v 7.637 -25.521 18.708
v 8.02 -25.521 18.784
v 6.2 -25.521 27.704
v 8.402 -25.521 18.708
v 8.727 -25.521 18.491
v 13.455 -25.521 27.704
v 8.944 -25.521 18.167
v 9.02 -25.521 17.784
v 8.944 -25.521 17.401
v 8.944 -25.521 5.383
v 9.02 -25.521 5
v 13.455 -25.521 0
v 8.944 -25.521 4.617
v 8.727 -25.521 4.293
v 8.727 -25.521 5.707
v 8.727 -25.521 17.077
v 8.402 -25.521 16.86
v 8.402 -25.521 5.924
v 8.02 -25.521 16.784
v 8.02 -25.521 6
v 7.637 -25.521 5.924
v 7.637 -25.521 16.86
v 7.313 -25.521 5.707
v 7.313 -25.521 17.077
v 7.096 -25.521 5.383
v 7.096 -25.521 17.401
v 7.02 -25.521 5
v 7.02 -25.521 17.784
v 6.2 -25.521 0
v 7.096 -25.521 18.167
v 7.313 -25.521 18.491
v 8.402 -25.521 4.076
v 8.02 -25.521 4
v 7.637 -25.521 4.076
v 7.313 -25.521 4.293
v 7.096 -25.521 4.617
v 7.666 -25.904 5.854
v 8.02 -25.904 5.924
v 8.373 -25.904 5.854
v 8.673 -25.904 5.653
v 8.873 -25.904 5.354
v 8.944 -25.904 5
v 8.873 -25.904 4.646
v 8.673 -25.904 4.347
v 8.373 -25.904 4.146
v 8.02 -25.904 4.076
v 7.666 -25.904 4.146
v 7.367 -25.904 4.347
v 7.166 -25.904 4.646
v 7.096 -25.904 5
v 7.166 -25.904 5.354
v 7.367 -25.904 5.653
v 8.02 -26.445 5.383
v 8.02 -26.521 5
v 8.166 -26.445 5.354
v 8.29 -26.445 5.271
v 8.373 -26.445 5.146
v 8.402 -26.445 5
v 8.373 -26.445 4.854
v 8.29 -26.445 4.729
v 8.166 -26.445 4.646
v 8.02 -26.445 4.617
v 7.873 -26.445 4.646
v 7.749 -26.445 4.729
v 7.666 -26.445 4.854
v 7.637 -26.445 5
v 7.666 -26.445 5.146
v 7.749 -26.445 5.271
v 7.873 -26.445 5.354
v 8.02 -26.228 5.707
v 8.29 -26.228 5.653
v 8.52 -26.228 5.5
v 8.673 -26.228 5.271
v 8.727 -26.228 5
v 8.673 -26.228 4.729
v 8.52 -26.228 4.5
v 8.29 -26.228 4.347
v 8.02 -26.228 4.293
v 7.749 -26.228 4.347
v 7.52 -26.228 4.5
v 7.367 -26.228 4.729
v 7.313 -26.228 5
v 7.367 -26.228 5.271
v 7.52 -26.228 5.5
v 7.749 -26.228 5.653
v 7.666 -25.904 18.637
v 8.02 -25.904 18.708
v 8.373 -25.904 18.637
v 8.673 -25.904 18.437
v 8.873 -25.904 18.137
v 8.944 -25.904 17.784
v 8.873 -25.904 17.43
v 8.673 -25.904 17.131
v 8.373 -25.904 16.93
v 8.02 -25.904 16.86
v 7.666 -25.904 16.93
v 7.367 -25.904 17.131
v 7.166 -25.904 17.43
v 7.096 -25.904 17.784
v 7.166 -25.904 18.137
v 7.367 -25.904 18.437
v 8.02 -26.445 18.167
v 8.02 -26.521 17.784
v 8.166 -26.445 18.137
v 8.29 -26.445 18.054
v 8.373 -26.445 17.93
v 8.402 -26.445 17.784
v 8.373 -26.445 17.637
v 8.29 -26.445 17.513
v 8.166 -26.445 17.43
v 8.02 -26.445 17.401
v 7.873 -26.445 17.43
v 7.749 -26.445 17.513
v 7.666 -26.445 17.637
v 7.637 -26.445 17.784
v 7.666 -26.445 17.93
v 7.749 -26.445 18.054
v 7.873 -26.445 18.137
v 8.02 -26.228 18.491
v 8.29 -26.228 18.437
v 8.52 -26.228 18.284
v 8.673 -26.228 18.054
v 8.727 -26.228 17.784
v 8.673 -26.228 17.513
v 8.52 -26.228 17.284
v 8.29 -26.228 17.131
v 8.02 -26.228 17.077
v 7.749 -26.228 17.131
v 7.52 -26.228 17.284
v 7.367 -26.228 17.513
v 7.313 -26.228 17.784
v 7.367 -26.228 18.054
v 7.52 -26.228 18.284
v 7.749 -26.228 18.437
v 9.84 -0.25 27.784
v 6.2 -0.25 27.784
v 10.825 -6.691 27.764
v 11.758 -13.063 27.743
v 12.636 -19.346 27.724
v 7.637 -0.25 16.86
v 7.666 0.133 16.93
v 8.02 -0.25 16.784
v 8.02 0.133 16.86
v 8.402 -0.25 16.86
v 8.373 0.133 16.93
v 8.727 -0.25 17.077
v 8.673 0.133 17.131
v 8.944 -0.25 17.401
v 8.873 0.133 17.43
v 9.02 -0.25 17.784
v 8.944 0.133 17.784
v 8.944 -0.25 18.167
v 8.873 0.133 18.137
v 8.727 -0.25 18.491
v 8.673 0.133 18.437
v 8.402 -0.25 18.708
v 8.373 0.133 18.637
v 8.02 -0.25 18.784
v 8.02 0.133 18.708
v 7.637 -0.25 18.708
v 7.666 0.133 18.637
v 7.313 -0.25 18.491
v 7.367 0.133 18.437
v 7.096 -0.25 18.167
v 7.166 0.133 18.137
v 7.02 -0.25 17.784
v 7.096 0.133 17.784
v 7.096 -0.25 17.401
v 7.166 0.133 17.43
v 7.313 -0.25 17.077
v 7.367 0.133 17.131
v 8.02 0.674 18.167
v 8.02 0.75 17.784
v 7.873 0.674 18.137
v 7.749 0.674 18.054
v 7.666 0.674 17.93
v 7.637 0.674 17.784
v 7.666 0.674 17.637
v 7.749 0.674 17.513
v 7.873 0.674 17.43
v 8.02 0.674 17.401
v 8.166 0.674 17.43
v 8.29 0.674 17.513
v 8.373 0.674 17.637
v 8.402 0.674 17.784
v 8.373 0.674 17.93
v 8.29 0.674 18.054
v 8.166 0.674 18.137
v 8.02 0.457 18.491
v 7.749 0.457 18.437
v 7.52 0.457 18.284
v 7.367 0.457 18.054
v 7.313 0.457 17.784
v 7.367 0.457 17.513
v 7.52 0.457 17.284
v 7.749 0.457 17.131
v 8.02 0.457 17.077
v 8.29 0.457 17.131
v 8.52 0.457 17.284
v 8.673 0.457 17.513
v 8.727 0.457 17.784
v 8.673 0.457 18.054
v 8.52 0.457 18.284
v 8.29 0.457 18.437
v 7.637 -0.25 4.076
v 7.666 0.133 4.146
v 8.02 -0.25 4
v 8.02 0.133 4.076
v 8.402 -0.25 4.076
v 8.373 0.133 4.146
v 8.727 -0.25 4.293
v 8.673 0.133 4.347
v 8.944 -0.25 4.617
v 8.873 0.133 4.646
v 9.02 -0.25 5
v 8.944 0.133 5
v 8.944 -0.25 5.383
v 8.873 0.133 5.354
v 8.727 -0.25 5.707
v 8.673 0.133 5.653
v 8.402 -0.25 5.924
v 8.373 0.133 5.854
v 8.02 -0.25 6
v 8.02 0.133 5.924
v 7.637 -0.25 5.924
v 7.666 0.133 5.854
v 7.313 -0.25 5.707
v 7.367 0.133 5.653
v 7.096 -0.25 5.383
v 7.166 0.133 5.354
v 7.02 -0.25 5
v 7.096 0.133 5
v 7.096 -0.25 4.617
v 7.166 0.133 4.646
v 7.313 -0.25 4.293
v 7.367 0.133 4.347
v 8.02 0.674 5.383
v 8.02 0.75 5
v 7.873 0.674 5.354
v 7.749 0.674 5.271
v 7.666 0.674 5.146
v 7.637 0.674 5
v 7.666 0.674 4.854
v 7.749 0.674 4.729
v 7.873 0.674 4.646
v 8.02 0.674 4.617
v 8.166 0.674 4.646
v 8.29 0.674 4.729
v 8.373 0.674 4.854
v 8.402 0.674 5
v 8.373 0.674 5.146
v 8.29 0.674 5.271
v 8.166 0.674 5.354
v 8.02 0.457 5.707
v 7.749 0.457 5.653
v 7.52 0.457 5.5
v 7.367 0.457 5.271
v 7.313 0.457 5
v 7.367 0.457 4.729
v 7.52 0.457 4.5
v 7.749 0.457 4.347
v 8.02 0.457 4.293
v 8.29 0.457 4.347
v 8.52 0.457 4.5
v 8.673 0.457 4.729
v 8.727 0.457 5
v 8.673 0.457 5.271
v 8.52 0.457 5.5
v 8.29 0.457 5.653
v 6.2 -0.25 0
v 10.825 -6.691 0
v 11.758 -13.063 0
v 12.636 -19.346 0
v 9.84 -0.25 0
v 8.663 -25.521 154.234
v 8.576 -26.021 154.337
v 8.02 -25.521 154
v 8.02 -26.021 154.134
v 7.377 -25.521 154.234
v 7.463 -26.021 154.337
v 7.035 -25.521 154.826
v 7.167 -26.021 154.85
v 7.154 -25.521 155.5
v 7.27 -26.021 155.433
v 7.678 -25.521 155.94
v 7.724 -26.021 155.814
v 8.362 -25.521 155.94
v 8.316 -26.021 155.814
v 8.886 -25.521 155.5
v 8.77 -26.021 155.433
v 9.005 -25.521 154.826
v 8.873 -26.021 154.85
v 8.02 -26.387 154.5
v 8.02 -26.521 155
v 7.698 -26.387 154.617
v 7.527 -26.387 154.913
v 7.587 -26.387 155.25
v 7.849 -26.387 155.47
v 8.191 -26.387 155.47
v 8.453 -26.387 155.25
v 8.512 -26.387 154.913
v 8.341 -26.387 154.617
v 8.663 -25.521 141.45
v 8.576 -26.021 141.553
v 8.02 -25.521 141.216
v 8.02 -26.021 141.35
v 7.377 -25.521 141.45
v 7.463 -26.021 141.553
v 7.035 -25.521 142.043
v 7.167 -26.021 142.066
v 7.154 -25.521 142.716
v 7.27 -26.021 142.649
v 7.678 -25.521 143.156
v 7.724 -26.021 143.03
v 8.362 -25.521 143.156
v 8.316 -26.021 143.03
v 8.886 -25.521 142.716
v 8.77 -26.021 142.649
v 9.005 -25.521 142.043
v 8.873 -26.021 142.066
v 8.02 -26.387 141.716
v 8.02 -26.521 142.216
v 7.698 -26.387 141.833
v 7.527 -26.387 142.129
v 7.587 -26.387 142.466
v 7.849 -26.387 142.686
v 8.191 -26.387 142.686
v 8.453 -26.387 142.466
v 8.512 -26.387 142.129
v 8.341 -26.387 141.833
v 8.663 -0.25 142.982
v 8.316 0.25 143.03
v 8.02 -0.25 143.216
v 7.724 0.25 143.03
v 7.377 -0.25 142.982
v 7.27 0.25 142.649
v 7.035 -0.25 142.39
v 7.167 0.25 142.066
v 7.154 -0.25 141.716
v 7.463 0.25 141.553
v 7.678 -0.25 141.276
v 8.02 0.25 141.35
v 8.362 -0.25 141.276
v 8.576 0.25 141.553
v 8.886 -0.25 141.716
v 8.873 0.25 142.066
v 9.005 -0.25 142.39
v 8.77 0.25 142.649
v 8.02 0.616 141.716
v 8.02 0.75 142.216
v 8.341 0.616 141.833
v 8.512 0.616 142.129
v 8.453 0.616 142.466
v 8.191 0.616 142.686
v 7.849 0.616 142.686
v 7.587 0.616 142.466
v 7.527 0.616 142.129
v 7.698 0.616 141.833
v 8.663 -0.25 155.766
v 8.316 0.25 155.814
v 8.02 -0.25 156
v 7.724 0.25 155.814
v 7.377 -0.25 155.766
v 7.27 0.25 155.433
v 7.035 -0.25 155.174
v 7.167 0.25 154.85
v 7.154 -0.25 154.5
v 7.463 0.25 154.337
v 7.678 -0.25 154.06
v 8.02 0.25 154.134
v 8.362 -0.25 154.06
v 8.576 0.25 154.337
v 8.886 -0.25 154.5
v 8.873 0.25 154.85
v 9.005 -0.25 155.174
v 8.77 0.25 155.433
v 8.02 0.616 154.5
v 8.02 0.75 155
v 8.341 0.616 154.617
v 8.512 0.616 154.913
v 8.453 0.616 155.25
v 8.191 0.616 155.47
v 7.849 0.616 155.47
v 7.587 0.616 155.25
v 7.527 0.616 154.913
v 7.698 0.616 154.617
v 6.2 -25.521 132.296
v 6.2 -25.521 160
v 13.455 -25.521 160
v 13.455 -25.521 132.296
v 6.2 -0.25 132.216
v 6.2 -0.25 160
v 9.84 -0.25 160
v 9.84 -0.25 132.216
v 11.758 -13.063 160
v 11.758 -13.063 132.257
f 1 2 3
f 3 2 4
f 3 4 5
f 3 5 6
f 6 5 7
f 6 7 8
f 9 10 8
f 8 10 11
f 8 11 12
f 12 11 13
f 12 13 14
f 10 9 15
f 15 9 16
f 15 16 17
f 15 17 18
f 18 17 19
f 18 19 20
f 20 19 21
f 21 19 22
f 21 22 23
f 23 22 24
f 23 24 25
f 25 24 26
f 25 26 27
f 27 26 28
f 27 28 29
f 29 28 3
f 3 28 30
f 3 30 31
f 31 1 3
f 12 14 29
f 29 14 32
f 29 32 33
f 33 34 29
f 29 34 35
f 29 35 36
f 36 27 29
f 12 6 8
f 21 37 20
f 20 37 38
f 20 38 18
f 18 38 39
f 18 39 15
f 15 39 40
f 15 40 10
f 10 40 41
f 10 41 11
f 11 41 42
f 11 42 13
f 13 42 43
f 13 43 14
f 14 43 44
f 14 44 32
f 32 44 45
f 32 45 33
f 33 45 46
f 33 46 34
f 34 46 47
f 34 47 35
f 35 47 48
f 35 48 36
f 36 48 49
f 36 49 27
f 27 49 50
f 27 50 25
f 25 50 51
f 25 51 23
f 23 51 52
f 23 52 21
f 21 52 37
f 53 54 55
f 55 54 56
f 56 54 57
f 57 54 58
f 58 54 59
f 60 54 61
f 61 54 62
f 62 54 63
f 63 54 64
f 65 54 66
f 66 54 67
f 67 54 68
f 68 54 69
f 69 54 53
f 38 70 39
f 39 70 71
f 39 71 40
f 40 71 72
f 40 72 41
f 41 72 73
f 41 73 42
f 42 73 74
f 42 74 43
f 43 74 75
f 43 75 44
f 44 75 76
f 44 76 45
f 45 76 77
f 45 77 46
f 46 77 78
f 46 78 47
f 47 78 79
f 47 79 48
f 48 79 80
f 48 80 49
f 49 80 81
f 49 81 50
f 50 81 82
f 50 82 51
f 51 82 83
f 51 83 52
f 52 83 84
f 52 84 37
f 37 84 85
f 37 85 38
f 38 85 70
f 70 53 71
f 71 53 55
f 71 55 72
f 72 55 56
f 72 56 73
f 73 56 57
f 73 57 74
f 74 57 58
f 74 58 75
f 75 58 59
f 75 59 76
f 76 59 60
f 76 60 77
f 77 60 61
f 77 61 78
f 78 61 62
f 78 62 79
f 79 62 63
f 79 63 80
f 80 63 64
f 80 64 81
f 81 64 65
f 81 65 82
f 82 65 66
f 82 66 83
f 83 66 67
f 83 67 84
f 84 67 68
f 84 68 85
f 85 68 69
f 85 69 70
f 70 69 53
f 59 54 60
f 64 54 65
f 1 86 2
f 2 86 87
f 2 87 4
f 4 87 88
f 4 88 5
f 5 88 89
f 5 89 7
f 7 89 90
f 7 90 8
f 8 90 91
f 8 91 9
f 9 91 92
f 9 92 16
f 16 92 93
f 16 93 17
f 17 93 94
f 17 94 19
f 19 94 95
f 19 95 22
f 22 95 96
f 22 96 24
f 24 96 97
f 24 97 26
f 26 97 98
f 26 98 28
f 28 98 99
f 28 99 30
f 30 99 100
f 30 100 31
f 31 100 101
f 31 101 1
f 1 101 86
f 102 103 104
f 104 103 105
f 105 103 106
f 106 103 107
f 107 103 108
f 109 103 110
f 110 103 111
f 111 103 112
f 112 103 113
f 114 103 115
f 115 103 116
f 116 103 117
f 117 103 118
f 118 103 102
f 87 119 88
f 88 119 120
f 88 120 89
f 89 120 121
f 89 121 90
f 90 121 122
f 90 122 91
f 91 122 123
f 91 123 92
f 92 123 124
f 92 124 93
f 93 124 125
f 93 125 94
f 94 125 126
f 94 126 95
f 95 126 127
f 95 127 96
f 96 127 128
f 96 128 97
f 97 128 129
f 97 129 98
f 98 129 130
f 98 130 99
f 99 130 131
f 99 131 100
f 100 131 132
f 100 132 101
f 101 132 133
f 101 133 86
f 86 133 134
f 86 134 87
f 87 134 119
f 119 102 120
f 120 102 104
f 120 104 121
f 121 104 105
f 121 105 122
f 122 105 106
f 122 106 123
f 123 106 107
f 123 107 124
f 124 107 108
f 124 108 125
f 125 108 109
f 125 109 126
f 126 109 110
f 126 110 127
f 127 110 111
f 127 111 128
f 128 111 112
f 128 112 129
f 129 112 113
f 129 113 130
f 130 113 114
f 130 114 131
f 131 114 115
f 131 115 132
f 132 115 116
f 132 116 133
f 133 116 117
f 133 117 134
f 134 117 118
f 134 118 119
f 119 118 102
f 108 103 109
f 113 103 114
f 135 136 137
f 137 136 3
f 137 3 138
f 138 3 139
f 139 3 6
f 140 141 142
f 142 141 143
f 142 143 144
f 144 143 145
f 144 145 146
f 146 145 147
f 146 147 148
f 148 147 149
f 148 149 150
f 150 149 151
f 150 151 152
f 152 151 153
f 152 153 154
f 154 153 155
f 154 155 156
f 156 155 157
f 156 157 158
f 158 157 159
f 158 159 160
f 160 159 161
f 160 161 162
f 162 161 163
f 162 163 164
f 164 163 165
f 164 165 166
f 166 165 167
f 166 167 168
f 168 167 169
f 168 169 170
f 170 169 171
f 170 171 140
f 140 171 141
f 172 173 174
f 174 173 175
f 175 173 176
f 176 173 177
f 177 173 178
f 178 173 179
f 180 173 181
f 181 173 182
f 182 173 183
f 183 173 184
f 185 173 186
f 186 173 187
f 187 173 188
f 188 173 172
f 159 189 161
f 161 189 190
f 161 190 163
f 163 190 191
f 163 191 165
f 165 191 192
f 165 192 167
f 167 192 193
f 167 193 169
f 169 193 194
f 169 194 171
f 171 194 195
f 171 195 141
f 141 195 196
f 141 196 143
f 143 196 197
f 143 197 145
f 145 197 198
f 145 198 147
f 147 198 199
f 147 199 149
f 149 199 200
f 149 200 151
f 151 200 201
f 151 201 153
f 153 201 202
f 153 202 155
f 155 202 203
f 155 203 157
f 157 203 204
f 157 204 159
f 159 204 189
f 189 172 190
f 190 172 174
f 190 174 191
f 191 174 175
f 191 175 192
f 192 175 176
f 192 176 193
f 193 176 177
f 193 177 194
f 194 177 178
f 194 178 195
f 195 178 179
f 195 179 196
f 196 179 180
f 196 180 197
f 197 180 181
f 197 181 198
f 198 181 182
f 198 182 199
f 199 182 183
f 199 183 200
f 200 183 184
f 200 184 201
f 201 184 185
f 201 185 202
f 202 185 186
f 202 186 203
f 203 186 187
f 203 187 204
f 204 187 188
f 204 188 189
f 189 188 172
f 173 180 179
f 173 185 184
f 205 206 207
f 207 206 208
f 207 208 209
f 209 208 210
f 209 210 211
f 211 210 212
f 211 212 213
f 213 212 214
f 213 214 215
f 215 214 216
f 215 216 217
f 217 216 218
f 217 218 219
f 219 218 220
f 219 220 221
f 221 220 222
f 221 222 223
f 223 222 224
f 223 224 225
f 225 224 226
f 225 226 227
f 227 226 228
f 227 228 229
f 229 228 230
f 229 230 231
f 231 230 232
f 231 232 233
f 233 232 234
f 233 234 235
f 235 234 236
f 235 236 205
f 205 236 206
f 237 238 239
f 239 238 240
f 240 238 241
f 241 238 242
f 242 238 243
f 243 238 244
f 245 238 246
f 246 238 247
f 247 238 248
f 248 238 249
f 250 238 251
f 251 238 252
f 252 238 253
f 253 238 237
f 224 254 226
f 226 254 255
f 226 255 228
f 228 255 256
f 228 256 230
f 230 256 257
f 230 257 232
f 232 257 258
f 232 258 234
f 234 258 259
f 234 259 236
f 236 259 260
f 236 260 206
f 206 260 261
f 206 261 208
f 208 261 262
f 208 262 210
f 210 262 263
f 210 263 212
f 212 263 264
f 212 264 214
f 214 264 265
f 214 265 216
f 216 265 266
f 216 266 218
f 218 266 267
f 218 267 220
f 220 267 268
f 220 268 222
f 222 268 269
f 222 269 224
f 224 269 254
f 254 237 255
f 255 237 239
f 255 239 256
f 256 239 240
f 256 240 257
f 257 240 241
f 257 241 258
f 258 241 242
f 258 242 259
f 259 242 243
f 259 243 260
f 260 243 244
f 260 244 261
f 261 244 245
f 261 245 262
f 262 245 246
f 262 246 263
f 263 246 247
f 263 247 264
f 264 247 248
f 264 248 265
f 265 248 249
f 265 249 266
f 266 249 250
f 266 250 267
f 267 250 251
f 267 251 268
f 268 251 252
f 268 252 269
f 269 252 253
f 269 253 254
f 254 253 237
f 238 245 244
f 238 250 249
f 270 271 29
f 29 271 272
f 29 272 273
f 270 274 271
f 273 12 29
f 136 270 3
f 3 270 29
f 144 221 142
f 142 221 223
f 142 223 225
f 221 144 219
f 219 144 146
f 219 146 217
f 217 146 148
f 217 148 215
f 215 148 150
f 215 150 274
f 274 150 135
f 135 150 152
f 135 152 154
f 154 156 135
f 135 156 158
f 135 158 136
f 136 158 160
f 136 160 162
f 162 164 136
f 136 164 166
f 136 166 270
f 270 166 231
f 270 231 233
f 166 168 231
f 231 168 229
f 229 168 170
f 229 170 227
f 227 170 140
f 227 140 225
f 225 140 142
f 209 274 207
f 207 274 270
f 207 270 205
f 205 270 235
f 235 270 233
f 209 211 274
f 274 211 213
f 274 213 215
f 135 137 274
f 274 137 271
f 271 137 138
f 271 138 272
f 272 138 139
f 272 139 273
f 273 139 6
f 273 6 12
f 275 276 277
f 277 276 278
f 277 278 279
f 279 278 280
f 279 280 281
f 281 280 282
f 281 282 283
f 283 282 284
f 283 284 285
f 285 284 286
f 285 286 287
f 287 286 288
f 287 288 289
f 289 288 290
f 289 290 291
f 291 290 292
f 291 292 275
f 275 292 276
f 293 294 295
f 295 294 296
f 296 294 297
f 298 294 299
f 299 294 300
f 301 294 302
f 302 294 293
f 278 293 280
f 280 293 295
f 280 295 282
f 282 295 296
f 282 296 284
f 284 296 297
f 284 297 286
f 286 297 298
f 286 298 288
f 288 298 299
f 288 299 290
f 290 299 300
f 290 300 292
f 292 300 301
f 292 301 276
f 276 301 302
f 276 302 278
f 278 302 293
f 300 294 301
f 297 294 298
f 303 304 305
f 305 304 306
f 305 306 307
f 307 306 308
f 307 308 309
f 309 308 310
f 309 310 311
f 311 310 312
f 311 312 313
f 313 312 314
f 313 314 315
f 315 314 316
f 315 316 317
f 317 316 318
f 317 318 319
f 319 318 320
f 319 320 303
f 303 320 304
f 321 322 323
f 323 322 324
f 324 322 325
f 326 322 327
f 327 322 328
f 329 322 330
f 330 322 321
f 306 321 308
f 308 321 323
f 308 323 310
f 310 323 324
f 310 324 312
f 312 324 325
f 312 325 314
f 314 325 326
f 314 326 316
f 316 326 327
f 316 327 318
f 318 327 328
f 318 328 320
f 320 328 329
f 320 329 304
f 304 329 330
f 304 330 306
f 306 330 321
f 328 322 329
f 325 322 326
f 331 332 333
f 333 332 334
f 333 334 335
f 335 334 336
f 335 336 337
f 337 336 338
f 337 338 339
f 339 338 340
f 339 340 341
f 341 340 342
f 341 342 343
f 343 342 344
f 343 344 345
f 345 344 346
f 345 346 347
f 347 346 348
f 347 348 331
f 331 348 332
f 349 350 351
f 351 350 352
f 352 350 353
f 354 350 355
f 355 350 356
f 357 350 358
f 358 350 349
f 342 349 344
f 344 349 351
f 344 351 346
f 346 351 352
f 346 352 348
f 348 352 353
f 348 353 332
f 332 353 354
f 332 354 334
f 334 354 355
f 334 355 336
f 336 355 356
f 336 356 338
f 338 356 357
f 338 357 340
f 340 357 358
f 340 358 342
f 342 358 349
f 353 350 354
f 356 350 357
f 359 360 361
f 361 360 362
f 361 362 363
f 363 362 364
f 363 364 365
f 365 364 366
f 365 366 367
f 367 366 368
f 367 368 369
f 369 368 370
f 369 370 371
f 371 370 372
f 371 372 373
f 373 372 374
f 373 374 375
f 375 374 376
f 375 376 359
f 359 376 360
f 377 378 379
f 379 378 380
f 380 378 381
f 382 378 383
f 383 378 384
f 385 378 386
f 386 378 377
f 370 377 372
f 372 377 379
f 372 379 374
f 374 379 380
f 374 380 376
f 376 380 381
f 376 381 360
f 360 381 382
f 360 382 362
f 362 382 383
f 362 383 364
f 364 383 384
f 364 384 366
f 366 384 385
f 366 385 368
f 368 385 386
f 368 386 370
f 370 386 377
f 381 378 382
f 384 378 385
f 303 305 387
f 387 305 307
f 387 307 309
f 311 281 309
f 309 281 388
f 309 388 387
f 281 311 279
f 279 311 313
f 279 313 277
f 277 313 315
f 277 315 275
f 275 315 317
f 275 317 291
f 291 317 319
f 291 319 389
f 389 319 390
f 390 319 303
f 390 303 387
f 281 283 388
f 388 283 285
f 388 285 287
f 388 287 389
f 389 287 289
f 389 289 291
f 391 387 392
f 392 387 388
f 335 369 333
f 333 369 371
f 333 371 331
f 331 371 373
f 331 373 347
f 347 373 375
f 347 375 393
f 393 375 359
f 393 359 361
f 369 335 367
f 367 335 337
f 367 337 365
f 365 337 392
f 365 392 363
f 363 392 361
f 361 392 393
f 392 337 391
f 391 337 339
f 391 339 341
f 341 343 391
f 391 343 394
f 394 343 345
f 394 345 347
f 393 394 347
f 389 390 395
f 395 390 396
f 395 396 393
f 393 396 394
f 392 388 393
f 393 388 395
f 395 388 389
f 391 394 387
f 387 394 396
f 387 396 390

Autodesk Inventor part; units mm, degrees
ref_plane "YZ Plane" through (0, 0, 0) normal (1, 0, 0) x (0, 1, 0)
ref_plane "Work Plane1" through (0, 0, 0) normal (0, 0, 1) x (1, 0, 0)
sketch "Sketch1" plane through (0, 0, 0) normal (0, 0, 1) x (1, 0, 0)
  spline S0 degree 3 poles (0.756, 49.6264) (0.8045, 49.3961) (1.4299, 46.4448) (3.02, 38.5419) (3.7417, 34.8308) (6.1255, 22.1808) (7.7131, 13.0519) (12.377, -15.9979) (15.3565, -38.2776) (18.0982, -72.579) (18.7462, -87.3982) (17.8341, -109.2065) (16.9191, -121.3453) (13.1344, -135.1445) (11.7229, -139.4741) (8.6906, -144.8131) (7.5566, -146.4347) (5.361, -148.5489) (4.4031, -149.2519) (2.172, -150.2514) (1.1579, -150.3736) (0.378, -150.3736) knots -21.570573 -21.570573 -21.570573 -21.570573 -20.133907 -20.133907 -18.864962 -18.864962 -15.766925 -15.766925 -8.908038 -8.908038 -4.28709 -4.28709 -1.655649 -1.655649 -0.852769 -0.852769 -0.490947 -0.490947 -0.258162 -0.258162 0 0 0 0 projected
  line L0 (13.2039, -25.771) -> (-6.8, -25.771) projected
  line L1 (-6.8, 0) -> (9.8005, 0) projected
  line L2 (5.2, -2.2181) -> (5.2, 1.2819) projected
  line L3 (6.2, 0) -> (6.2, -25.771)
  line L4 (6.2, -0.25) -> (9.8396, -0.25)
  line L5 (6.2, -25.521) -> (13.4551, -25.521)
  circle A0 centre (8.0198, -0.25) radius 1
  circle A1 centre (8.0783, -25.521) radius 1
  circle A2 centre (8.0198, -0.25) radius 1
  circle A3 centre (8.0783, -25.521) radius 1
  point P0 (0, 0)
  point P1 (9.0783, -25.521)
  point P2 (9.0198, -0.25)
  point P3 (7.0198, -0.25)
  point P4 (7.0783, -25.521)
  dimension "d0" = 1
  dimension "d1" = 0.25
  dimension "d2" = 0.25
  dimension "d3" = 2
  dimension "d4" = 2
ref_plane "Work Plane2" through (-6.6501, -24.5518, 27.7072) normal (0, -0.0032, 1) x (1, 0, 0)
ref_plane "Work Plane3" through (-6.6501, -24.5518, 27.7072) normal (0, -0.0032, 1) x (1, 0, 0)
extrude "Extrusion1" add sketch "Sketch1" along normal up to surface contours S0 L5 A1 L3 L4 A0 | A0 L4 | L5 A1 surface through (-6.6501, -24.5518, 27.7072) normal (0, -0.0032, 1)
ref_plane "Work Plane4" through (0, 0, 80) normal (0, 0, 1) x (1, 0, 0)
sketch "Sketch3" plane through (6.2, -0.25, 0) normal (0, 1, 0) x (1, 0, 0)
  circle A0 centre (1.8198, -5) radius 1
  circle A1 centre (1.8198, -17.7838) radius 1
  line L0 (0, -27.7838) -> (3.6396, -27.7838) projected
  line L1 (3.6396, 0) -> (0, 0) projected
  point P0 (-6.2, 0)
  point P1 (1.8198, -27.7838)
  point P2 (1.8198, 0)
  dimension "d10" = 2
  dimension "d11" = 2
  dimension "d13" = 10
  dimension "d14" = 5
extrude "Extrusion3" add sketch "Sketch3" along normal blind 1
fillet "Fillet1" radius 1 2 edges at (7.0198, 0.75, 5) (7.0198, 0.75, 17.7838)
ref_plane "Work Plane5" through (6.2, -12.8855, 0) normal (0, 1, 0) x (1, 0, 0)
mirror "Mirror2" about plane through (6.2, -12.8855, 0) normal (0, 1, 0) of "Extrusion3"
fillet "Fillet2" radius 1 2 edges at (7.0198, -26.521, 17.7838) (7.0198, -26.521, 5)
ref_plane "Work Plane6" through (0, 0, 792.194) normal (0, 0, 1) x (1, 0, 0)
mirror "Mirror3" about plane through (0, 0, 80) normal (0, 0, 1)
properties part number "servo cap"
